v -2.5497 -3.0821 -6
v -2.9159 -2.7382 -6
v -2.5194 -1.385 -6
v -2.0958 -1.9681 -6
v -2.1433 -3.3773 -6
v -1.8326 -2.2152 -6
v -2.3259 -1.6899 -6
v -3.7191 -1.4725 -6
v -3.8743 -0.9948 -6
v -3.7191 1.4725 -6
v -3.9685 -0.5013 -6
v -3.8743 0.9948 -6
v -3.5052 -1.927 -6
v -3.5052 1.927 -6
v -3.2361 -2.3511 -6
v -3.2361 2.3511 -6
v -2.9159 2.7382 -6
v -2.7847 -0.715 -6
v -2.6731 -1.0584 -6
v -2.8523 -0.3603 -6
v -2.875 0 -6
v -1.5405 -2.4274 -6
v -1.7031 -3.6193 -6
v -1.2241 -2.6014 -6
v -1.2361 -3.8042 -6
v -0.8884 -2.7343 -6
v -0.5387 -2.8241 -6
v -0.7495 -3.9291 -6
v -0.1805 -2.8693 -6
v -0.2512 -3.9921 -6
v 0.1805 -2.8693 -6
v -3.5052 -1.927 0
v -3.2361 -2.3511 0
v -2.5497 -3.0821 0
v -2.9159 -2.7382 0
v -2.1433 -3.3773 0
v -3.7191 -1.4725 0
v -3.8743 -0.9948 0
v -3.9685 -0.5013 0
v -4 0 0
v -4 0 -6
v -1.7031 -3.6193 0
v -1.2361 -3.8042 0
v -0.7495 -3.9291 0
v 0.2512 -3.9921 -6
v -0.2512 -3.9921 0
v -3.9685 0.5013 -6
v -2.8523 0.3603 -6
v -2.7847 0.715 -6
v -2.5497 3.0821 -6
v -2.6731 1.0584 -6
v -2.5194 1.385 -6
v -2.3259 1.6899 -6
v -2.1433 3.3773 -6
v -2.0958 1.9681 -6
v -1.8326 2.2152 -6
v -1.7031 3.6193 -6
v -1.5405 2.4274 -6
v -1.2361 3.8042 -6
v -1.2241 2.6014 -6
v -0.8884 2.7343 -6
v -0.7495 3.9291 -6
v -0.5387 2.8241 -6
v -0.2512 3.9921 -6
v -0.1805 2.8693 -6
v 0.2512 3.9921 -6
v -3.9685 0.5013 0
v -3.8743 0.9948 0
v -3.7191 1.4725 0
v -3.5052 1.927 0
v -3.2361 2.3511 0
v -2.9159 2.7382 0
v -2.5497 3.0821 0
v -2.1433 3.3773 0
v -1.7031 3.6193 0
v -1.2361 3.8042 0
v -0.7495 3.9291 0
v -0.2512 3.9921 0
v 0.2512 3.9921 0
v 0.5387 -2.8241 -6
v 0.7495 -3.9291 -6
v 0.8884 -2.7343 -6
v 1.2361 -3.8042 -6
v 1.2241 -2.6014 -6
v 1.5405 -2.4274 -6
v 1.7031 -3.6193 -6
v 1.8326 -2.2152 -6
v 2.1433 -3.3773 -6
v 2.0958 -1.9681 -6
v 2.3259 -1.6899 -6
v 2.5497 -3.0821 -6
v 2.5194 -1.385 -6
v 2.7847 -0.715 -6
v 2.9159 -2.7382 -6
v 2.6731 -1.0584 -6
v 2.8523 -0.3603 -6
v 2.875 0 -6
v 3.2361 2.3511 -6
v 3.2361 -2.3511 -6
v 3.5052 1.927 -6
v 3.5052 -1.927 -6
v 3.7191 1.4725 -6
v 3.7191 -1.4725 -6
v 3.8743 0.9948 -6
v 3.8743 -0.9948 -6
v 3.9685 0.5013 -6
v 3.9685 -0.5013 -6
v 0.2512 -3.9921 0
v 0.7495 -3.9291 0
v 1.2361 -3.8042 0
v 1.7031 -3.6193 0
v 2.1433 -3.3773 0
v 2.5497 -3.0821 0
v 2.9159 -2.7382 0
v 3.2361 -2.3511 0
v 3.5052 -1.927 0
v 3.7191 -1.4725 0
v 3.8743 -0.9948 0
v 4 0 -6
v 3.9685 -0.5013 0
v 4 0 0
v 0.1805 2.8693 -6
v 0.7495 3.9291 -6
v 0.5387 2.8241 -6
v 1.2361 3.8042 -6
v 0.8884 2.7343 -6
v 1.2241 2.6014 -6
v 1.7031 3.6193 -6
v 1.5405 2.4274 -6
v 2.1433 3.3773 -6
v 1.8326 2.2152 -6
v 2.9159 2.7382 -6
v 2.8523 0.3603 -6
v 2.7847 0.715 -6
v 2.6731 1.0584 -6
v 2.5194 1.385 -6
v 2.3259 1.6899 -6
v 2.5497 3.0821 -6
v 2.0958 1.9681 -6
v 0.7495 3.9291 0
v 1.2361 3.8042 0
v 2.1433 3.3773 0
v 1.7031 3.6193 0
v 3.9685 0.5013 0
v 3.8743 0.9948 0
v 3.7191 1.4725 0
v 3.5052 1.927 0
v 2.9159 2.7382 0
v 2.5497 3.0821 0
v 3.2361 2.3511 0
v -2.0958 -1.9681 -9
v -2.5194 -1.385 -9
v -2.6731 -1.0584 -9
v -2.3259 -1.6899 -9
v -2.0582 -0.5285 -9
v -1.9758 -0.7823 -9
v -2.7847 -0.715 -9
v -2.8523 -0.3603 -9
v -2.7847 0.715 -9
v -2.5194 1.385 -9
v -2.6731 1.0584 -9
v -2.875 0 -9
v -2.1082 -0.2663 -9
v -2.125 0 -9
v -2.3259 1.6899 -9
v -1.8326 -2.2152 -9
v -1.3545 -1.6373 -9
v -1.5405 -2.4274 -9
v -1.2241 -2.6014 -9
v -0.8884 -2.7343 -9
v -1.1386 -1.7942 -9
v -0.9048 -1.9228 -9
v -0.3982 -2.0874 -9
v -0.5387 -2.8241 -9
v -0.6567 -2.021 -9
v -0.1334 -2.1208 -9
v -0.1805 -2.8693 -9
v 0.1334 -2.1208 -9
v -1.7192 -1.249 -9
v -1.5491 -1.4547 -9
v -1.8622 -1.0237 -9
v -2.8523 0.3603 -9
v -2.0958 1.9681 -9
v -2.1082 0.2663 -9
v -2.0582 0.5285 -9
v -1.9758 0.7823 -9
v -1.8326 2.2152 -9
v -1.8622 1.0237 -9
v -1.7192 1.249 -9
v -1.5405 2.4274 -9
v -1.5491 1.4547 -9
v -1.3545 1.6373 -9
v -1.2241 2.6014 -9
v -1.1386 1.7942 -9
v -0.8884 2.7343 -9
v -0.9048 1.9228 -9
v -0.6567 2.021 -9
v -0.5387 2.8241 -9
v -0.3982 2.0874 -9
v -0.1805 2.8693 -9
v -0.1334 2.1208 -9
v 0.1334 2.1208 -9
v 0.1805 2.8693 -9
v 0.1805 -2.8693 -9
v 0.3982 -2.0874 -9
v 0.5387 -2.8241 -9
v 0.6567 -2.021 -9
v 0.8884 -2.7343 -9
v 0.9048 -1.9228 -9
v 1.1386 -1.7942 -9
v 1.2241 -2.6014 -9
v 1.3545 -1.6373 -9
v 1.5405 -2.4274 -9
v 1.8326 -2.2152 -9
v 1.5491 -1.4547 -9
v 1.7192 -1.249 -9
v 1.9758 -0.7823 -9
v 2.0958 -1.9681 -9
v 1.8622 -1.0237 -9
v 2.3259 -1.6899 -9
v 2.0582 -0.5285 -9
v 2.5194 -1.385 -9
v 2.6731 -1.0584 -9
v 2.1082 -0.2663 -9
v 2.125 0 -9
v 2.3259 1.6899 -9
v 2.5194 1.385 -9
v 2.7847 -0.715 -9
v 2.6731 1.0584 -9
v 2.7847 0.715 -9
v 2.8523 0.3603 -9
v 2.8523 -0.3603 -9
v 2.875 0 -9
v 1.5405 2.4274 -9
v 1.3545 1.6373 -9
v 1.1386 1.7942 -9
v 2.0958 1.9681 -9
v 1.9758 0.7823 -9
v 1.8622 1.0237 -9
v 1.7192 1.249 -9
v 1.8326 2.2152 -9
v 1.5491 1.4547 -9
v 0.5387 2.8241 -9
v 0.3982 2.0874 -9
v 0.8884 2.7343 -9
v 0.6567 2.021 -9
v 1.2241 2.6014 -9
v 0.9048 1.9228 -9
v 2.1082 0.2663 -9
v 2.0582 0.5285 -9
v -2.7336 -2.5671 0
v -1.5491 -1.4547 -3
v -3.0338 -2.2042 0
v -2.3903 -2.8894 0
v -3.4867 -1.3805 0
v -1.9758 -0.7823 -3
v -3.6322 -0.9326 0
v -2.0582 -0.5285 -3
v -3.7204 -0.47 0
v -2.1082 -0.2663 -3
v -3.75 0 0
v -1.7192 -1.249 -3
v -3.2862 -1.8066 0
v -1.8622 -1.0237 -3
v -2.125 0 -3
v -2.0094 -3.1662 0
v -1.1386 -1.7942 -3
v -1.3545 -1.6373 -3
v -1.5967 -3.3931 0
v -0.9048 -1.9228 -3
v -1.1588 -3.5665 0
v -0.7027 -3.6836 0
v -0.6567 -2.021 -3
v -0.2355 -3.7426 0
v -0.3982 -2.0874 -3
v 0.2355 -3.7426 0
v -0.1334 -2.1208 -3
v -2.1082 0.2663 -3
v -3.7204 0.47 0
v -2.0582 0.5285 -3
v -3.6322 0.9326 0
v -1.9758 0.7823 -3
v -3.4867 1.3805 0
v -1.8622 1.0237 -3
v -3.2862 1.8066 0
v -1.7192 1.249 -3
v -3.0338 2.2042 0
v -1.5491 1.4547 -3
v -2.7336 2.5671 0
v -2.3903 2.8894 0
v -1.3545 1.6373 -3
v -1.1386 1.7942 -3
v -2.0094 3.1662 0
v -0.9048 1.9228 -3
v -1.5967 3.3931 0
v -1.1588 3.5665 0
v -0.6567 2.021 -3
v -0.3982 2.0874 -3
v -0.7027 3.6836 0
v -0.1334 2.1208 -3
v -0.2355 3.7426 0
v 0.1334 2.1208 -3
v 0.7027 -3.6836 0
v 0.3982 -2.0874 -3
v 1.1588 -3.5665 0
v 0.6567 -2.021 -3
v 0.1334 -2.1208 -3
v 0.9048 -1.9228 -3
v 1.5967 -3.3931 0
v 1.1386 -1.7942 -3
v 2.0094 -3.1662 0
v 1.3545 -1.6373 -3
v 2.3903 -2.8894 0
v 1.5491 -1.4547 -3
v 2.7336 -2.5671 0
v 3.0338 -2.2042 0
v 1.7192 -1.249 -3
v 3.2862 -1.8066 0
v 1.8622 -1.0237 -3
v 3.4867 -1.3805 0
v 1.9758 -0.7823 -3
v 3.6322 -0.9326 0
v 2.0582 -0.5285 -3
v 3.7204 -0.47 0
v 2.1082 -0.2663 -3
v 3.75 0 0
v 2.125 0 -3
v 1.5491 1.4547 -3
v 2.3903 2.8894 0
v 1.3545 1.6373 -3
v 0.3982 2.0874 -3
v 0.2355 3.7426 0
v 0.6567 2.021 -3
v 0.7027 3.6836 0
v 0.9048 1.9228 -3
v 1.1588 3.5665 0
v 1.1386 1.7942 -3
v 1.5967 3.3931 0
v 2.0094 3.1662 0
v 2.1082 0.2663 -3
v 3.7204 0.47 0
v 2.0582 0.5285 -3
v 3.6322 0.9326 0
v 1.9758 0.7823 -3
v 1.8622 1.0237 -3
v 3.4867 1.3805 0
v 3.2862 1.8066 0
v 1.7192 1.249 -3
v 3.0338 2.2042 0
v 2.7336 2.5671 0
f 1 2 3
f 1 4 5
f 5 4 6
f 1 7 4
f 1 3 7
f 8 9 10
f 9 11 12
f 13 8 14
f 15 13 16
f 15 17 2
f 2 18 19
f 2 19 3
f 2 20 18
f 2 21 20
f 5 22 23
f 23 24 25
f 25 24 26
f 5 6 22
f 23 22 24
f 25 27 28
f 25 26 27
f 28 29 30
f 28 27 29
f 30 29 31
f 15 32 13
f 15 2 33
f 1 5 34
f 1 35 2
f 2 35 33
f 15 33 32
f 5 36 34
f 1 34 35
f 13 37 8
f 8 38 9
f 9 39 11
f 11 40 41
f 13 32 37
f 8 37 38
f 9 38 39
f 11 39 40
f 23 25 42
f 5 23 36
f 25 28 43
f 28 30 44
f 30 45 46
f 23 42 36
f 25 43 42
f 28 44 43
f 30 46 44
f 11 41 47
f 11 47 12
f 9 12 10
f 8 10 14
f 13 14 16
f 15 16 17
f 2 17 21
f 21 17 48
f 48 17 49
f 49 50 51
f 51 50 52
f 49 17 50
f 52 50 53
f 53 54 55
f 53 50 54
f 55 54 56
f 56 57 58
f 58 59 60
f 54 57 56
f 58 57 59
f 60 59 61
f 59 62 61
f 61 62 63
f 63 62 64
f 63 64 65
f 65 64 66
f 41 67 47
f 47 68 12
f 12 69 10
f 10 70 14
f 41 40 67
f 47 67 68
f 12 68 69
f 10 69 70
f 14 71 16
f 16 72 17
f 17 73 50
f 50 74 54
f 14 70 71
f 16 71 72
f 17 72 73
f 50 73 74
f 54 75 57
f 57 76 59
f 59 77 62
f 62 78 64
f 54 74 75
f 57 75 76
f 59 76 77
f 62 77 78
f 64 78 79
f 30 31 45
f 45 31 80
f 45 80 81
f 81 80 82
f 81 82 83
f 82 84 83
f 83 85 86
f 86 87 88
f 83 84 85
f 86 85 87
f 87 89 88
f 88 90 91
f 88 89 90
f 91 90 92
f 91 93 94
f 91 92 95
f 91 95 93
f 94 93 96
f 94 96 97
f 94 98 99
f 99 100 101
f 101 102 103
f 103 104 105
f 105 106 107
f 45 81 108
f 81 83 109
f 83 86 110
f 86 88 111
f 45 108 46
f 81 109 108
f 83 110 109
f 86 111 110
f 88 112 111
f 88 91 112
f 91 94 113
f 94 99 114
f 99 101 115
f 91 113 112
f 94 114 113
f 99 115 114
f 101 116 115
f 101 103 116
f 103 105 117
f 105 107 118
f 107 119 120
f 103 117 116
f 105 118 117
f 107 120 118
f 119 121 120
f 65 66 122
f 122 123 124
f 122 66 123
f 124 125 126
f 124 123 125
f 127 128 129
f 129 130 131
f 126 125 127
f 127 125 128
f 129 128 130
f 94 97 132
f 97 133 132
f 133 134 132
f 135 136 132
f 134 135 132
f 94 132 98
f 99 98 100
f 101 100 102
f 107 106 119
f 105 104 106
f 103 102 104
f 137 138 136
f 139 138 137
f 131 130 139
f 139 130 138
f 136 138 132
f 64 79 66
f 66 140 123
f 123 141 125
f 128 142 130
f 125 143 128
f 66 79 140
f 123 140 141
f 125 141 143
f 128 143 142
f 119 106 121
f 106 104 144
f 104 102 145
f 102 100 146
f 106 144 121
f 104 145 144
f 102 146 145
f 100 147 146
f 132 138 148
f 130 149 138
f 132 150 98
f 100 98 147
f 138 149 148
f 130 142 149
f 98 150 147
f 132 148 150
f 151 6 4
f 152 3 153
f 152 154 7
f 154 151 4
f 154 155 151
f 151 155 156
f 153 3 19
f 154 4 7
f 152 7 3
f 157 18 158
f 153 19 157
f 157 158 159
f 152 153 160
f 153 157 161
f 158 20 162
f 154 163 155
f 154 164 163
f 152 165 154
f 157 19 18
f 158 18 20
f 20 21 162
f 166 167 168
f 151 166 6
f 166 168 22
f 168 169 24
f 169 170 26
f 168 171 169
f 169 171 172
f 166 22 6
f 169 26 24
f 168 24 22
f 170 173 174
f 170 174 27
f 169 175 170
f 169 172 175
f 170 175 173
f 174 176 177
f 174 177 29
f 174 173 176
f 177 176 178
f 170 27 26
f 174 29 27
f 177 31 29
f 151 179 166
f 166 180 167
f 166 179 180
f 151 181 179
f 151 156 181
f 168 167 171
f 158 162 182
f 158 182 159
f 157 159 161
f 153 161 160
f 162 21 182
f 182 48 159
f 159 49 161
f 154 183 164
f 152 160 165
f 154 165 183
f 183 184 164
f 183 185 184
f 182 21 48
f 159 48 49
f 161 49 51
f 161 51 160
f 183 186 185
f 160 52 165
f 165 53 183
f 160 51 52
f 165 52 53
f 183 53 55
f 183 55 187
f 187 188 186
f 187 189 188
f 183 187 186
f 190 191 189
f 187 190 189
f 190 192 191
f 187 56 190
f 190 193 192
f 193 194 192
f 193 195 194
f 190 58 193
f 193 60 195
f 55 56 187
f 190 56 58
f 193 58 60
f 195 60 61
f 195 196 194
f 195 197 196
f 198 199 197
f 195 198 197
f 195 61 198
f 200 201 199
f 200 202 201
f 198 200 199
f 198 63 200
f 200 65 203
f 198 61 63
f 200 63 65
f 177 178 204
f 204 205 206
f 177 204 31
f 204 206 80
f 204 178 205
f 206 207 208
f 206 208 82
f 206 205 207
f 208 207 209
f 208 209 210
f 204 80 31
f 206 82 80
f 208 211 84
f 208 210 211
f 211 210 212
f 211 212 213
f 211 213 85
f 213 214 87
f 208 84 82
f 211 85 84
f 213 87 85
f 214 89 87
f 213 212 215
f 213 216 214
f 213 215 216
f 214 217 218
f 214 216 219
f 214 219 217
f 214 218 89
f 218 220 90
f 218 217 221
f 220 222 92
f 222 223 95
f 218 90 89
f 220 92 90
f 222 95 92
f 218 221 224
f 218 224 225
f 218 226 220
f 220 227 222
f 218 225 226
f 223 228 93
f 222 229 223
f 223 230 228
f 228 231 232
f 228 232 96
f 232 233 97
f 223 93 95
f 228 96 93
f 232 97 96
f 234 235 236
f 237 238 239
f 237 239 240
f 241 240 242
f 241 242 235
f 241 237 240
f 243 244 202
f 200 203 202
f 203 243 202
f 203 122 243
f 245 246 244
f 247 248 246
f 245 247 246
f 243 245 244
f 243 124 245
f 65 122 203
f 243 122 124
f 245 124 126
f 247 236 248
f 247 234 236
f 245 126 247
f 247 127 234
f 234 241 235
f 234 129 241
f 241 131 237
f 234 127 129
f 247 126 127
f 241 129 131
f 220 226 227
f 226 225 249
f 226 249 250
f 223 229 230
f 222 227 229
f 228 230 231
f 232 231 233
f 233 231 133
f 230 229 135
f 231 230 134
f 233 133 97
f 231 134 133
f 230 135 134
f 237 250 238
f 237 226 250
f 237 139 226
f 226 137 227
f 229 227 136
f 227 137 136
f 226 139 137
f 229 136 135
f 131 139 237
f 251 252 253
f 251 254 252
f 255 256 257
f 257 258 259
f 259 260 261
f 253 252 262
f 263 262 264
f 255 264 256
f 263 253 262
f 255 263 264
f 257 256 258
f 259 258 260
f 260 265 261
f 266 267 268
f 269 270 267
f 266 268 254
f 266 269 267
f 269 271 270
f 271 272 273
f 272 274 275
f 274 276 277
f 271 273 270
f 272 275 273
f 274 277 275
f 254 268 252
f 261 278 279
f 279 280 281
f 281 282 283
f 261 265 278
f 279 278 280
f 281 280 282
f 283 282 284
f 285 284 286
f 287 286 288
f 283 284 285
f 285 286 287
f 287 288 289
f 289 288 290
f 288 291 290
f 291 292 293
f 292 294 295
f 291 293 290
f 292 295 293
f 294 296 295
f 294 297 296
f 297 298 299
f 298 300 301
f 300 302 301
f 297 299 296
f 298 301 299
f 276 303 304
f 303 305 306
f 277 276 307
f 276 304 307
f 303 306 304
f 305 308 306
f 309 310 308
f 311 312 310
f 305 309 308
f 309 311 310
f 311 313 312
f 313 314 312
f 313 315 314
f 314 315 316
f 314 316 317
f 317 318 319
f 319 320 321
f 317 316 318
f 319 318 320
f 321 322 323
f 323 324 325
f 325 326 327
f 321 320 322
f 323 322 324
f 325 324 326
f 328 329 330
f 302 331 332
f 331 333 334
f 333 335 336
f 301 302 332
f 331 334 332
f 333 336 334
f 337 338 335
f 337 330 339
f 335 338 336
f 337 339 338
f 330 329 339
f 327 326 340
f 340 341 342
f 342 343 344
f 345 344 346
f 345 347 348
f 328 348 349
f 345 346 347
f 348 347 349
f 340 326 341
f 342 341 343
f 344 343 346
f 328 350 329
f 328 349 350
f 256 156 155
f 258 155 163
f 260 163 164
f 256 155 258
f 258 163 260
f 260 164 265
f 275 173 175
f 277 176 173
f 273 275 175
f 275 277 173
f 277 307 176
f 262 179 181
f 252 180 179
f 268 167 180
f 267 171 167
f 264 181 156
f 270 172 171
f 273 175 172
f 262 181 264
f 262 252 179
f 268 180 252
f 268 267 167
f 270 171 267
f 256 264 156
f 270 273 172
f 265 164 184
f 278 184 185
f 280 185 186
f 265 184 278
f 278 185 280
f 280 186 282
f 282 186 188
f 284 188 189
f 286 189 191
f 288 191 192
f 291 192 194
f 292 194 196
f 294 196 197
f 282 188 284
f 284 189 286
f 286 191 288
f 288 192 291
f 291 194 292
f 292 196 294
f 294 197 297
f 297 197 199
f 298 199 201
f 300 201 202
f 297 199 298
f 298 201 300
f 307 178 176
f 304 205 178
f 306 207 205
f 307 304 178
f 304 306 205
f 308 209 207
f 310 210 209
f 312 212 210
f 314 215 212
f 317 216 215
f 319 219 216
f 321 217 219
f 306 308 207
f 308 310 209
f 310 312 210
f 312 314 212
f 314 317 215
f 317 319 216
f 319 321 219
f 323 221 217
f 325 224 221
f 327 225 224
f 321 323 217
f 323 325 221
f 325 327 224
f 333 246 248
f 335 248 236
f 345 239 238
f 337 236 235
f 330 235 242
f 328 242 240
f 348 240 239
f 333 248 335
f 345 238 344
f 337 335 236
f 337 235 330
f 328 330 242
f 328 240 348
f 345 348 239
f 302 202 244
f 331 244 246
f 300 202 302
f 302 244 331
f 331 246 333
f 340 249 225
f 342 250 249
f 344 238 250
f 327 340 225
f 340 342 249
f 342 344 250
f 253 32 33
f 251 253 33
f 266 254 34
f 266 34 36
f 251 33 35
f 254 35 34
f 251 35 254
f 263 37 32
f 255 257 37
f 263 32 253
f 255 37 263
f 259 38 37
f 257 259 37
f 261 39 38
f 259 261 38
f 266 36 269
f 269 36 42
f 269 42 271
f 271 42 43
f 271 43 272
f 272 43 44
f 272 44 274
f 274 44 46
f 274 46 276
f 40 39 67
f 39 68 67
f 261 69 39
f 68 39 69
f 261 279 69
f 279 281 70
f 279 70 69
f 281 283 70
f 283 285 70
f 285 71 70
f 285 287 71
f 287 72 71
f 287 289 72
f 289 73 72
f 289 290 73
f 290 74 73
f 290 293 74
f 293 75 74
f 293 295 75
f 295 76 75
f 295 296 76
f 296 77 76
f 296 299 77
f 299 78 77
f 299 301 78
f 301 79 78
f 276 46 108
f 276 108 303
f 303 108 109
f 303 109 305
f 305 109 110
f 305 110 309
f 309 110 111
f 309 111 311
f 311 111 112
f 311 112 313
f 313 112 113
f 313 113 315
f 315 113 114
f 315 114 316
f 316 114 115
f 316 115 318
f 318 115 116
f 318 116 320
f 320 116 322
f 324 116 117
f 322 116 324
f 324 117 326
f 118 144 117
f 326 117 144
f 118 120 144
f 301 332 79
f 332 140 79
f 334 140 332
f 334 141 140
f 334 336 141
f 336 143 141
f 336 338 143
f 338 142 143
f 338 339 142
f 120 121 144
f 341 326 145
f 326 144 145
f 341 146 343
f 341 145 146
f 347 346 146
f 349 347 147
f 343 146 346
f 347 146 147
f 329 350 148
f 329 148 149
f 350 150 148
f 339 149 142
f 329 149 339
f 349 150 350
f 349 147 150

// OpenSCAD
$fn = 50;

difference() {
	union() {
		translate(v = [0, 0, -6.0]) {
			cylinder(h = 6, r = 4.0);
		}
		#translate(v = [0, 0, -9.0]) {
			cylinder(h = 9, r = 2.875);
		}
	}
	union() {
		translate(v = [0, 0, 0]) {
			rotate(a = [0, 0, 0]) {
				difference() {
					union() {
						translate(v = [0, 0, -9.0]) {
							cylinder(h = 9, r = 2.0);
						}
						translate(v = [0, 0, -3]) {
							cylinder(h = 3, r1 = 2.125, r2 = 3.75);
						}
						translate(v = [0, 0, -9.0]) {
							cylinder(h = 9, r = 2.125);
						}
						translate(v = [0, 0, -9.0]) {
							cylinder(h = 9, r = 2.0);
						}
					}
					union();
				}
			}
		}
	}
}
